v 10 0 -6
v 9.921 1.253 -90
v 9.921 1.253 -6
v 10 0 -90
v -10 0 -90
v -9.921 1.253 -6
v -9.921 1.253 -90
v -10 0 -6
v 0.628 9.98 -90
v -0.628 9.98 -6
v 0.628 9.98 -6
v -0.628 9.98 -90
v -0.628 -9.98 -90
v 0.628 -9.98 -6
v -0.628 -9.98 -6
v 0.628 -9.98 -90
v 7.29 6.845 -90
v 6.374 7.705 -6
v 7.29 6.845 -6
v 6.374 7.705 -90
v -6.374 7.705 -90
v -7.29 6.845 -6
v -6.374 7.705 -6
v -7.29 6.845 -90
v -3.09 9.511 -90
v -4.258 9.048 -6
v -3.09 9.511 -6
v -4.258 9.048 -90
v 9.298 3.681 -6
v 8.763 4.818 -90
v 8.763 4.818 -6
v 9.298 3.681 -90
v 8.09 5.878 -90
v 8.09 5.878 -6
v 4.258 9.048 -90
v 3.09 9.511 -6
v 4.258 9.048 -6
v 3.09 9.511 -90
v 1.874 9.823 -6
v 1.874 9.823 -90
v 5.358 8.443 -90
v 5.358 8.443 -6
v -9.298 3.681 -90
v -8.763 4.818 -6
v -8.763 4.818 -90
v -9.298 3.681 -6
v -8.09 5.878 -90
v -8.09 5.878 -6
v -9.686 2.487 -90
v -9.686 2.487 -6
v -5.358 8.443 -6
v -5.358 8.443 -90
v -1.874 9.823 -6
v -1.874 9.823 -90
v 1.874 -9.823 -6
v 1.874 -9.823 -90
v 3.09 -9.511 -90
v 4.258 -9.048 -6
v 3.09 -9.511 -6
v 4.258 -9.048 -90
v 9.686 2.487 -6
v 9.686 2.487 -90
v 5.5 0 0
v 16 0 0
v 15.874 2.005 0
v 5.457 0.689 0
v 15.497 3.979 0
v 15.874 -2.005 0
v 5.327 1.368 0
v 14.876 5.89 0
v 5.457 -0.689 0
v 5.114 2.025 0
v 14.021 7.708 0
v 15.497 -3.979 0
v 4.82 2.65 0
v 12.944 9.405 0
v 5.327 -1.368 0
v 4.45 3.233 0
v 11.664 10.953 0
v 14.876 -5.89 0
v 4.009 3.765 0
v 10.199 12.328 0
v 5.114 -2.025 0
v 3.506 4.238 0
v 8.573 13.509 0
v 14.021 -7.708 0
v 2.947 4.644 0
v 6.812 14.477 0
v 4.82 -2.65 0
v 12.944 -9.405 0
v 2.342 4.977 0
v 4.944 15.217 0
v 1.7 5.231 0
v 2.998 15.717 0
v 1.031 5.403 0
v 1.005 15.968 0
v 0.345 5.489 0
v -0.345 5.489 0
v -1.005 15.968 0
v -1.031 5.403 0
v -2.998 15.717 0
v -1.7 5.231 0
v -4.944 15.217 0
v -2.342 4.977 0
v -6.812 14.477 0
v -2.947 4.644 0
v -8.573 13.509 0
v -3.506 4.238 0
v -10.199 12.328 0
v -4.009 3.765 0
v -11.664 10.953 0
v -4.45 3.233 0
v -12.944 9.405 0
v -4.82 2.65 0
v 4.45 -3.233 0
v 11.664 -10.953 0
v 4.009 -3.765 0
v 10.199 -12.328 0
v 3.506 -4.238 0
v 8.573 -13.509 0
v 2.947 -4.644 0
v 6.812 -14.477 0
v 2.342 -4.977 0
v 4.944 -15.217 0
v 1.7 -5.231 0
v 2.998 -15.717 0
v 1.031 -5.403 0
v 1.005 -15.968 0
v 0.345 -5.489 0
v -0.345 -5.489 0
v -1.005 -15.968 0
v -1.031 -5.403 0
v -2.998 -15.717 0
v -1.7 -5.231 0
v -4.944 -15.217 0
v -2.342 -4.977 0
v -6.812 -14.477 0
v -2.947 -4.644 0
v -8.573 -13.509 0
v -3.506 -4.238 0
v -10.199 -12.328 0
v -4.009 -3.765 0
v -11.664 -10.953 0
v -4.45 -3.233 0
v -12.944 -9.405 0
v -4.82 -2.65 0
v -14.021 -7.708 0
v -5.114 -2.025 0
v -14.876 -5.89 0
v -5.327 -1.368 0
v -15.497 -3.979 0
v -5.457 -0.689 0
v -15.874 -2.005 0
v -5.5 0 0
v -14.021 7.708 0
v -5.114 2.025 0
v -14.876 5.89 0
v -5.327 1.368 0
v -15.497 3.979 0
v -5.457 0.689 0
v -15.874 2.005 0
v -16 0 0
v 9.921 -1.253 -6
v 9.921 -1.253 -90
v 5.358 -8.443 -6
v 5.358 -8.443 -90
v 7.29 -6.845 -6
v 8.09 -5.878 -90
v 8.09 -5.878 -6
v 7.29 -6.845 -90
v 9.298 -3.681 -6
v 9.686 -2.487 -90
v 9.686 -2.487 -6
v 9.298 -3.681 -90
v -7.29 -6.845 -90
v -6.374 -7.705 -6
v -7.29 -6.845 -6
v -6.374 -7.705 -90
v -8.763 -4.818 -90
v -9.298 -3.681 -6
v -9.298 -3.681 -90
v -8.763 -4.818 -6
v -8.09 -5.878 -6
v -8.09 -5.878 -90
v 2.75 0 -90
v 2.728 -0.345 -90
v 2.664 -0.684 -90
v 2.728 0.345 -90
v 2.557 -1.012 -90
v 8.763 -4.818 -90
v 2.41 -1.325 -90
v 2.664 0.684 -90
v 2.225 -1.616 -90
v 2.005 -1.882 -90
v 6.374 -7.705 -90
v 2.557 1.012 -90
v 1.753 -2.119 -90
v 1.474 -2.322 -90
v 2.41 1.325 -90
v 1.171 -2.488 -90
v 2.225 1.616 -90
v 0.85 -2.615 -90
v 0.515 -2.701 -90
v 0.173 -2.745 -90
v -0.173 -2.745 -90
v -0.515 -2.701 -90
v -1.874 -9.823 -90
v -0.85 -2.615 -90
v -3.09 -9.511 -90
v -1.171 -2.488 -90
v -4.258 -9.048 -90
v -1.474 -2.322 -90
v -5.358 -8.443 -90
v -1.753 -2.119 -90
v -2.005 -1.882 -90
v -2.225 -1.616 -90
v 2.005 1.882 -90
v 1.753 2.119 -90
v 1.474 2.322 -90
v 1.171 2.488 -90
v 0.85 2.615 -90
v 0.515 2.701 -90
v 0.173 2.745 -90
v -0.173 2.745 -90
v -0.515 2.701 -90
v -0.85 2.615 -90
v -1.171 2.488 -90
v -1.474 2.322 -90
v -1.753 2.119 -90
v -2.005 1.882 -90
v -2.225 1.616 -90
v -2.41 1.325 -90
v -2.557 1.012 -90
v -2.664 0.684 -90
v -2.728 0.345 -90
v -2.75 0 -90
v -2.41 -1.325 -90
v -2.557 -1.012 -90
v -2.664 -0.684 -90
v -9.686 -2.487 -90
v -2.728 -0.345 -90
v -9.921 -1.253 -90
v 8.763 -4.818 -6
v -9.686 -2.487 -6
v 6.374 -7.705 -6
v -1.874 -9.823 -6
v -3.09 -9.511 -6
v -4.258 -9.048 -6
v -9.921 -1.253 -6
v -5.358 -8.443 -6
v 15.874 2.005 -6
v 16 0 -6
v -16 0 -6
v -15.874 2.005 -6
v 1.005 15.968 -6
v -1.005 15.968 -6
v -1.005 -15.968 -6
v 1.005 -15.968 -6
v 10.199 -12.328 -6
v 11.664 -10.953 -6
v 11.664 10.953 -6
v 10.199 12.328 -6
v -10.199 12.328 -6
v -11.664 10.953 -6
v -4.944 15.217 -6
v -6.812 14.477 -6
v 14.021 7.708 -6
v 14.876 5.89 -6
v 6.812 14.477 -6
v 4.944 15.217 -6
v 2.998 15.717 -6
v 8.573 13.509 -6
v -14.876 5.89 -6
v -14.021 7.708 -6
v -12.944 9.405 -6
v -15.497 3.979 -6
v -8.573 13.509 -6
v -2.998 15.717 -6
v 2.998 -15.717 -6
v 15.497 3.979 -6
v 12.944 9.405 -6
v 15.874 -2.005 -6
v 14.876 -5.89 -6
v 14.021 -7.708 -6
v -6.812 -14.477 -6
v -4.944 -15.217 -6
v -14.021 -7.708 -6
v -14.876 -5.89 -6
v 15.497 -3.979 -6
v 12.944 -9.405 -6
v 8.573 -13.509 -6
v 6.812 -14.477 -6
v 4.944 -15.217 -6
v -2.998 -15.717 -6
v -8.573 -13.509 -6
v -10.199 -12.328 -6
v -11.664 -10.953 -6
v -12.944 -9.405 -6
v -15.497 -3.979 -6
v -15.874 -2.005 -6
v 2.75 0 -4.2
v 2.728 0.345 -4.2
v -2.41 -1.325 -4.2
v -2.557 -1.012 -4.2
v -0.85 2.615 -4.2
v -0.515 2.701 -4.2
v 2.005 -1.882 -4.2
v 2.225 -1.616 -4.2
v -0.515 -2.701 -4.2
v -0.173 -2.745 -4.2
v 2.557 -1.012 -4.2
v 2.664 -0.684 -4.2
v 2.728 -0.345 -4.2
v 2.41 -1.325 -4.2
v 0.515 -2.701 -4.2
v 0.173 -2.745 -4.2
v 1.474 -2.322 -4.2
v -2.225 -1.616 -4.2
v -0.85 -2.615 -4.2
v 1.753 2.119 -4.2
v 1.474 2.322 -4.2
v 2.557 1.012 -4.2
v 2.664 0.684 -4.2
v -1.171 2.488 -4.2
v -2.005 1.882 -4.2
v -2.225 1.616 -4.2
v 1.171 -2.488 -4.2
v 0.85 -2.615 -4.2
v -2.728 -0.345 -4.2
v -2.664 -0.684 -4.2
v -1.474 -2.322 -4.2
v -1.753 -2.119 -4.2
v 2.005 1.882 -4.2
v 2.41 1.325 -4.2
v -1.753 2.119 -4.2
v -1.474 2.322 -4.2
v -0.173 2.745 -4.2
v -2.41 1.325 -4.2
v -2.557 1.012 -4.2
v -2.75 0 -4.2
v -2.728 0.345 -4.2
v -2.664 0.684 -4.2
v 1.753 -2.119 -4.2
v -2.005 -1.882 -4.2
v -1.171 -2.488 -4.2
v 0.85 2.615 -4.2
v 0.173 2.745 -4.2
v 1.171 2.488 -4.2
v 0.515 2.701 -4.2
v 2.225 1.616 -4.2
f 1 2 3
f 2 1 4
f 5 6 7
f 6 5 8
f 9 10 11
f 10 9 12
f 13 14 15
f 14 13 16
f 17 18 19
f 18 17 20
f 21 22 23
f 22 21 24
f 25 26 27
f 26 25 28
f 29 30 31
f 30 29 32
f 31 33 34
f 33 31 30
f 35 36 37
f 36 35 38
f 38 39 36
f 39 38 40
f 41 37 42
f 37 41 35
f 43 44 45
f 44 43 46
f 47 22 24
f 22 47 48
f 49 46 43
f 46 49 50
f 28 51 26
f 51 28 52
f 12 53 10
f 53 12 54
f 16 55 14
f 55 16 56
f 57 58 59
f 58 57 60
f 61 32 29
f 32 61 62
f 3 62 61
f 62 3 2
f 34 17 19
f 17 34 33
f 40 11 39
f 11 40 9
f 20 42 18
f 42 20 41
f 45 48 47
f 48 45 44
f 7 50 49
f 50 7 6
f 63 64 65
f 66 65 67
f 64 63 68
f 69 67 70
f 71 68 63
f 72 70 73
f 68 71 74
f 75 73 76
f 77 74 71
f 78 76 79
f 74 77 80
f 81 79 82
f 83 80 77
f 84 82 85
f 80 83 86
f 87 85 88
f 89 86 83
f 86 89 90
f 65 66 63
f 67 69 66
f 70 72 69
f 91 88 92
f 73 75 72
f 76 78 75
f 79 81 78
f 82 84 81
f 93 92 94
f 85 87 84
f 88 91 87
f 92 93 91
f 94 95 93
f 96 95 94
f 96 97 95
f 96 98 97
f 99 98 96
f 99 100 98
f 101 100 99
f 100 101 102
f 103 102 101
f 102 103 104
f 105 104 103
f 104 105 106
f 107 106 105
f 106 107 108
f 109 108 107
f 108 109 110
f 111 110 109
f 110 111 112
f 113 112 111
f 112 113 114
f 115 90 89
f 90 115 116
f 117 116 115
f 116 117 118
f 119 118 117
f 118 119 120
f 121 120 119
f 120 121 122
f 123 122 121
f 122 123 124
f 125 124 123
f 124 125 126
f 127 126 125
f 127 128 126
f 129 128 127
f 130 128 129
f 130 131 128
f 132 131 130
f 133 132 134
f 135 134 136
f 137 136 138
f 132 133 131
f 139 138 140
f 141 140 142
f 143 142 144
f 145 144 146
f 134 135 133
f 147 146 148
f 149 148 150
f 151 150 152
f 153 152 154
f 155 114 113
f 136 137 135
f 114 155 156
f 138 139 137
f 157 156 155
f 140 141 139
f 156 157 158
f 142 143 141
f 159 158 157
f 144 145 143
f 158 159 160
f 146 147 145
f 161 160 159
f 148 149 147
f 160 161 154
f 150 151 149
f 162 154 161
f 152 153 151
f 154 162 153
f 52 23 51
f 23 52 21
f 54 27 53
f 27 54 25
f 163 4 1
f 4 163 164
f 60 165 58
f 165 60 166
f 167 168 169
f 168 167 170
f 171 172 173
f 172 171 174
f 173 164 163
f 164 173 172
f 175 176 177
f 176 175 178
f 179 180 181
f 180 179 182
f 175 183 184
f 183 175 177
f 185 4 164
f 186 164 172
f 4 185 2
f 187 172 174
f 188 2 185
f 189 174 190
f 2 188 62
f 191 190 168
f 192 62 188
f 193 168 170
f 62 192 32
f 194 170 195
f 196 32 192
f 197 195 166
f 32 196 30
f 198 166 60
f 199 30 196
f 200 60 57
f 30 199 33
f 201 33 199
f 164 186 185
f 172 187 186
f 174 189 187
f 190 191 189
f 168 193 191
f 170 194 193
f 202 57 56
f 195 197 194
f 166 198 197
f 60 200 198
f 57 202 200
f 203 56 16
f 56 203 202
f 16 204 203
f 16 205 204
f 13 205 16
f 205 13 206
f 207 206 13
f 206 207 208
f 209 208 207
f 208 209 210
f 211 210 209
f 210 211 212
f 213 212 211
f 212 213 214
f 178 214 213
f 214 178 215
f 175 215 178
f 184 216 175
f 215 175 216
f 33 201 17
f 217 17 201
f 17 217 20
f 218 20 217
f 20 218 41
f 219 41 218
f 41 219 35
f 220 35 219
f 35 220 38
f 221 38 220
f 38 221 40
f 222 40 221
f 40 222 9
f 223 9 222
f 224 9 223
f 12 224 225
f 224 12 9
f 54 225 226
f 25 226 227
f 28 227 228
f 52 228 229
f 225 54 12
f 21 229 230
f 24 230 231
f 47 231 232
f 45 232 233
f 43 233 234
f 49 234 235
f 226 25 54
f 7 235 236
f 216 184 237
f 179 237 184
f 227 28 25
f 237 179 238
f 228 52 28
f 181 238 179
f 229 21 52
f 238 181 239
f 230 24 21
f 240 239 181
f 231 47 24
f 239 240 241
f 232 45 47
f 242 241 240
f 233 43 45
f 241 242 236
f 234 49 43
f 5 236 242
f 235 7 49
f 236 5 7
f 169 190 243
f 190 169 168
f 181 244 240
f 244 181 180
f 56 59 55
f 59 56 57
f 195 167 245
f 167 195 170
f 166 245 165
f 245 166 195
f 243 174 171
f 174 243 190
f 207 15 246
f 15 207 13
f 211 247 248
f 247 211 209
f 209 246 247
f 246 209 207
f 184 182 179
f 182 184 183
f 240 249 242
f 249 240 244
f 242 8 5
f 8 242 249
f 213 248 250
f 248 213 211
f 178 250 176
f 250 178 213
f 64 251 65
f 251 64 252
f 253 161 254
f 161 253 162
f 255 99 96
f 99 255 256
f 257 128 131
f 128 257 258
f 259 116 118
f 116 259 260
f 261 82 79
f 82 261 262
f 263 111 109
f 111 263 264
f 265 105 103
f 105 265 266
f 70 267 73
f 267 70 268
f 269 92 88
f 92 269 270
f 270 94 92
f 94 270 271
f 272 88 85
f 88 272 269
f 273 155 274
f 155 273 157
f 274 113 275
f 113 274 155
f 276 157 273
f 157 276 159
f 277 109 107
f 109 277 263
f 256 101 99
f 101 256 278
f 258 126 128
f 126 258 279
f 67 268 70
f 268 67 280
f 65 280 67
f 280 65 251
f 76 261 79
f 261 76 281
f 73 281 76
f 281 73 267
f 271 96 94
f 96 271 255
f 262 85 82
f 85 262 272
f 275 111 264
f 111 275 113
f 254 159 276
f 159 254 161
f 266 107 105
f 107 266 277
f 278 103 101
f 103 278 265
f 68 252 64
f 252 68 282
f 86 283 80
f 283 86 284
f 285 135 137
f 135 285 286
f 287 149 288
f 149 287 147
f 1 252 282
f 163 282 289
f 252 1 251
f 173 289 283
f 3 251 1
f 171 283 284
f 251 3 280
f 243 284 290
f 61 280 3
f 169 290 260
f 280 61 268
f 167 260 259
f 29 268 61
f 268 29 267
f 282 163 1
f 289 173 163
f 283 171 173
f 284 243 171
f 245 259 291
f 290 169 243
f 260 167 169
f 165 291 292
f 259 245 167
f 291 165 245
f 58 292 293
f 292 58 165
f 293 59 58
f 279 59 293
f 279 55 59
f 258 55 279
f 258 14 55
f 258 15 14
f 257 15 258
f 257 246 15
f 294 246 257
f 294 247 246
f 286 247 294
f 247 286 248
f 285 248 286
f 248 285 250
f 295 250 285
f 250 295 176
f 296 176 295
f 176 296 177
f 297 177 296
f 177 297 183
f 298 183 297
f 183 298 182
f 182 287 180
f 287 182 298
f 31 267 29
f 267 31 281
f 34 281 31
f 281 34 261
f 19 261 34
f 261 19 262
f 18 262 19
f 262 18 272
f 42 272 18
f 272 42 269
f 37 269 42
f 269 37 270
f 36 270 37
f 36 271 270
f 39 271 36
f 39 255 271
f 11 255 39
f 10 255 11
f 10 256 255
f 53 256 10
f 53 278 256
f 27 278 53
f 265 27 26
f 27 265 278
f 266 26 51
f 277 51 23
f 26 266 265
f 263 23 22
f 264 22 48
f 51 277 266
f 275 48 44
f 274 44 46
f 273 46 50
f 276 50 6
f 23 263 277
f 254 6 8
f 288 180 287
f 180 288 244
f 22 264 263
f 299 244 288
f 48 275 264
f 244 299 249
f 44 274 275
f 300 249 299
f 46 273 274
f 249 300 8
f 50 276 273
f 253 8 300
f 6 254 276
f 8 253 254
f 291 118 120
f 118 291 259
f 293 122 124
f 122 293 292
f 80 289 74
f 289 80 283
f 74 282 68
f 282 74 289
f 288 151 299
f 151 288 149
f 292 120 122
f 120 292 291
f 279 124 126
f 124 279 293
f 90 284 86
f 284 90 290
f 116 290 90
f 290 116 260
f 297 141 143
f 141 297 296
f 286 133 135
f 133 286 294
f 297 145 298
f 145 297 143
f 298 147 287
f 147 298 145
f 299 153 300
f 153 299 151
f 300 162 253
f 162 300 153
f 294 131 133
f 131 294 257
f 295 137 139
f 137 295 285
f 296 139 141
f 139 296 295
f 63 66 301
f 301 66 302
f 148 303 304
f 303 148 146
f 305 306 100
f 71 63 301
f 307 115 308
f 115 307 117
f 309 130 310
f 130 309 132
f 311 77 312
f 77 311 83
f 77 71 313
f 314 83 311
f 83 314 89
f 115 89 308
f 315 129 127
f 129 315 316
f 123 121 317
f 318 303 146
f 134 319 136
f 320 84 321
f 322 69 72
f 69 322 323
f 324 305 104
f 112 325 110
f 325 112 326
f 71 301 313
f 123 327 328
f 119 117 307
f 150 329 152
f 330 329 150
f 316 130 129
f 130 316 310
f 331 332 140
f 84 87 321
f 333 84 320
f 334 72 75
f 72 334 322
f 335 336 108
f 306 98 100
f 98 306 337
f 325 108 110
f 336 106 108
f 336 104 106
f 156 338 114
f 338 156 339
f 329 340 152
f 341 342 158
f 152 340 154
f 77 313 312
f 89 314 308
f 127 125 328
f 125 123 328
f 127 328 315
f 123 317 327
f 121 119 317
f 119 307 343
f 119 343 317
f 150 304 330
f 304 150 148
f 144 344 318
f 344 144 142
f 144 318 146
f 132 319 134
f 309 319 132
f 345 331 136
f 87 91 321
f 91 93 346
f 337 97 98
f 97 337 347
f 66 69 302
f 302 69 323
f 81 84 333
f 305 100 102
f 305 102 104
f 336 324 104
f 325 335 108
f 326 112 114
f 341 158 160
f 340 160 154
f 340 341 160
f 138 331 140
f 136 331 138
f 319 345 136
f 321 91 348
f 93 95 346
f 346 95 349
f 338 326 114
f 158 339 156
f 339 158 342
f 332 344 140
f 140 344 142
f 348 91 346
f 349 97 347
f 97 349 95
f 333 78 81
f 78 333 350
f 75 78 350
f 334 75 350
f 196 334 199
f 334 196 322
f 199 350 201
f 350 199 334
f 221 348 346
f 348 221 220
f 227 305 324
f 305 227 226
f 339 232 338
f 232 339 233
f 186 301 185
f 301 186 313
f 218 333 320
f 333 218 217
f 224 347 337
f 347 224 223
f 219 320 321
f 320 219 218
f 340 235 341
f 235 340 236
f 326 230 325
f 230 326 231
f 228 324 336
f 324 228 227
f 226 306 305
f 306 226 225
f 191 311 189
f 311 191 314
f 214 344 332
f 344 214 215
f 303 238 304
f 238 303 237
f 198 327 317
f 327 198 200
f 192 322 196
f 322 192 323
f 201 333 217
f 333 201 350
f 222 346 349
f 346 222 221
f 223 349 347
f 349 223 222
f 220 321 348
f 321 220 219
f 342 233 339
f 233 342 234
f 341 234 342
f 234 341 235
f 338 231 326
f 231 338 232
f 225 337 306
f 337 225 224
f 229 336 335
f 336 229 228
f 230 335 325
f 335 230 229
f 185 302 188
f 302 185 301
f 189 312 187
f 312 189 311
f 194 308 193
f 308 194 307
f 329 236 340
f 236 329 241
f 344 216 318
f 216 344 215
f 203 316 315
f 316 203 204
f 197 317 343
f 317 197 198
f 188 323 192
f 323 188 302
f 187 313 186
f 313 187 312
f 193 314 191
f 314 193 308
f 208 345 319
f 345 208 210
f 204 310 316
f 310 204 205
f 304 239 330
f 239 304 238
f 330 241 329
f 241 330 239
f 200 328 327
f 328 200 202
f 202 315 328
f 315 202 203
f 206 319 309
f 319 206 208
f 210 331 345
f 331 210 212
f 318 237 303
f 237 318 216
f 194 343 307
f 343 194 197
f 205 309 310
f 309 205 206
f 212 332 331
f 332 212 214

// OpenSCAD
$fn = 50;


difference() {
	union() {
		translate(v = [0, 0, -90.0000000000]) {
			cylinder(h = 90, r = 10.0000000000);
		}
		translate(v = [0, 0, -6.0000000000]) {
			cylinder(h = 6, r = 16.0000000000);
		}
	}
	union() {
		translate(v = [0, 0, 0]) {
			rotate(a = [0, 0, 0]) {
				difference() {
					union() {
						#translate(v = [0, 0, -90.0000000000]) {
							cylinder(h = 90, r = 2.2500000000);
						}
						#translate(v = [0, 0, -4.2000000000]) {
							cylinder(h = 4.2000000000, r = 10.0000000000, r1 = 2.7500000000, r2 = 5.5000000000);
						}
						#translate(v = [0, 0, -90.0000000000]) {
							cylinder(h = 90, r = 2.7500000000);
						}
						#translate(v = [0, 0, -90.0000000000]) {
							cylinder(h = 90, r = 2.2500000000);
						}
					}
					union();
				}
			}
		}
	}
}
